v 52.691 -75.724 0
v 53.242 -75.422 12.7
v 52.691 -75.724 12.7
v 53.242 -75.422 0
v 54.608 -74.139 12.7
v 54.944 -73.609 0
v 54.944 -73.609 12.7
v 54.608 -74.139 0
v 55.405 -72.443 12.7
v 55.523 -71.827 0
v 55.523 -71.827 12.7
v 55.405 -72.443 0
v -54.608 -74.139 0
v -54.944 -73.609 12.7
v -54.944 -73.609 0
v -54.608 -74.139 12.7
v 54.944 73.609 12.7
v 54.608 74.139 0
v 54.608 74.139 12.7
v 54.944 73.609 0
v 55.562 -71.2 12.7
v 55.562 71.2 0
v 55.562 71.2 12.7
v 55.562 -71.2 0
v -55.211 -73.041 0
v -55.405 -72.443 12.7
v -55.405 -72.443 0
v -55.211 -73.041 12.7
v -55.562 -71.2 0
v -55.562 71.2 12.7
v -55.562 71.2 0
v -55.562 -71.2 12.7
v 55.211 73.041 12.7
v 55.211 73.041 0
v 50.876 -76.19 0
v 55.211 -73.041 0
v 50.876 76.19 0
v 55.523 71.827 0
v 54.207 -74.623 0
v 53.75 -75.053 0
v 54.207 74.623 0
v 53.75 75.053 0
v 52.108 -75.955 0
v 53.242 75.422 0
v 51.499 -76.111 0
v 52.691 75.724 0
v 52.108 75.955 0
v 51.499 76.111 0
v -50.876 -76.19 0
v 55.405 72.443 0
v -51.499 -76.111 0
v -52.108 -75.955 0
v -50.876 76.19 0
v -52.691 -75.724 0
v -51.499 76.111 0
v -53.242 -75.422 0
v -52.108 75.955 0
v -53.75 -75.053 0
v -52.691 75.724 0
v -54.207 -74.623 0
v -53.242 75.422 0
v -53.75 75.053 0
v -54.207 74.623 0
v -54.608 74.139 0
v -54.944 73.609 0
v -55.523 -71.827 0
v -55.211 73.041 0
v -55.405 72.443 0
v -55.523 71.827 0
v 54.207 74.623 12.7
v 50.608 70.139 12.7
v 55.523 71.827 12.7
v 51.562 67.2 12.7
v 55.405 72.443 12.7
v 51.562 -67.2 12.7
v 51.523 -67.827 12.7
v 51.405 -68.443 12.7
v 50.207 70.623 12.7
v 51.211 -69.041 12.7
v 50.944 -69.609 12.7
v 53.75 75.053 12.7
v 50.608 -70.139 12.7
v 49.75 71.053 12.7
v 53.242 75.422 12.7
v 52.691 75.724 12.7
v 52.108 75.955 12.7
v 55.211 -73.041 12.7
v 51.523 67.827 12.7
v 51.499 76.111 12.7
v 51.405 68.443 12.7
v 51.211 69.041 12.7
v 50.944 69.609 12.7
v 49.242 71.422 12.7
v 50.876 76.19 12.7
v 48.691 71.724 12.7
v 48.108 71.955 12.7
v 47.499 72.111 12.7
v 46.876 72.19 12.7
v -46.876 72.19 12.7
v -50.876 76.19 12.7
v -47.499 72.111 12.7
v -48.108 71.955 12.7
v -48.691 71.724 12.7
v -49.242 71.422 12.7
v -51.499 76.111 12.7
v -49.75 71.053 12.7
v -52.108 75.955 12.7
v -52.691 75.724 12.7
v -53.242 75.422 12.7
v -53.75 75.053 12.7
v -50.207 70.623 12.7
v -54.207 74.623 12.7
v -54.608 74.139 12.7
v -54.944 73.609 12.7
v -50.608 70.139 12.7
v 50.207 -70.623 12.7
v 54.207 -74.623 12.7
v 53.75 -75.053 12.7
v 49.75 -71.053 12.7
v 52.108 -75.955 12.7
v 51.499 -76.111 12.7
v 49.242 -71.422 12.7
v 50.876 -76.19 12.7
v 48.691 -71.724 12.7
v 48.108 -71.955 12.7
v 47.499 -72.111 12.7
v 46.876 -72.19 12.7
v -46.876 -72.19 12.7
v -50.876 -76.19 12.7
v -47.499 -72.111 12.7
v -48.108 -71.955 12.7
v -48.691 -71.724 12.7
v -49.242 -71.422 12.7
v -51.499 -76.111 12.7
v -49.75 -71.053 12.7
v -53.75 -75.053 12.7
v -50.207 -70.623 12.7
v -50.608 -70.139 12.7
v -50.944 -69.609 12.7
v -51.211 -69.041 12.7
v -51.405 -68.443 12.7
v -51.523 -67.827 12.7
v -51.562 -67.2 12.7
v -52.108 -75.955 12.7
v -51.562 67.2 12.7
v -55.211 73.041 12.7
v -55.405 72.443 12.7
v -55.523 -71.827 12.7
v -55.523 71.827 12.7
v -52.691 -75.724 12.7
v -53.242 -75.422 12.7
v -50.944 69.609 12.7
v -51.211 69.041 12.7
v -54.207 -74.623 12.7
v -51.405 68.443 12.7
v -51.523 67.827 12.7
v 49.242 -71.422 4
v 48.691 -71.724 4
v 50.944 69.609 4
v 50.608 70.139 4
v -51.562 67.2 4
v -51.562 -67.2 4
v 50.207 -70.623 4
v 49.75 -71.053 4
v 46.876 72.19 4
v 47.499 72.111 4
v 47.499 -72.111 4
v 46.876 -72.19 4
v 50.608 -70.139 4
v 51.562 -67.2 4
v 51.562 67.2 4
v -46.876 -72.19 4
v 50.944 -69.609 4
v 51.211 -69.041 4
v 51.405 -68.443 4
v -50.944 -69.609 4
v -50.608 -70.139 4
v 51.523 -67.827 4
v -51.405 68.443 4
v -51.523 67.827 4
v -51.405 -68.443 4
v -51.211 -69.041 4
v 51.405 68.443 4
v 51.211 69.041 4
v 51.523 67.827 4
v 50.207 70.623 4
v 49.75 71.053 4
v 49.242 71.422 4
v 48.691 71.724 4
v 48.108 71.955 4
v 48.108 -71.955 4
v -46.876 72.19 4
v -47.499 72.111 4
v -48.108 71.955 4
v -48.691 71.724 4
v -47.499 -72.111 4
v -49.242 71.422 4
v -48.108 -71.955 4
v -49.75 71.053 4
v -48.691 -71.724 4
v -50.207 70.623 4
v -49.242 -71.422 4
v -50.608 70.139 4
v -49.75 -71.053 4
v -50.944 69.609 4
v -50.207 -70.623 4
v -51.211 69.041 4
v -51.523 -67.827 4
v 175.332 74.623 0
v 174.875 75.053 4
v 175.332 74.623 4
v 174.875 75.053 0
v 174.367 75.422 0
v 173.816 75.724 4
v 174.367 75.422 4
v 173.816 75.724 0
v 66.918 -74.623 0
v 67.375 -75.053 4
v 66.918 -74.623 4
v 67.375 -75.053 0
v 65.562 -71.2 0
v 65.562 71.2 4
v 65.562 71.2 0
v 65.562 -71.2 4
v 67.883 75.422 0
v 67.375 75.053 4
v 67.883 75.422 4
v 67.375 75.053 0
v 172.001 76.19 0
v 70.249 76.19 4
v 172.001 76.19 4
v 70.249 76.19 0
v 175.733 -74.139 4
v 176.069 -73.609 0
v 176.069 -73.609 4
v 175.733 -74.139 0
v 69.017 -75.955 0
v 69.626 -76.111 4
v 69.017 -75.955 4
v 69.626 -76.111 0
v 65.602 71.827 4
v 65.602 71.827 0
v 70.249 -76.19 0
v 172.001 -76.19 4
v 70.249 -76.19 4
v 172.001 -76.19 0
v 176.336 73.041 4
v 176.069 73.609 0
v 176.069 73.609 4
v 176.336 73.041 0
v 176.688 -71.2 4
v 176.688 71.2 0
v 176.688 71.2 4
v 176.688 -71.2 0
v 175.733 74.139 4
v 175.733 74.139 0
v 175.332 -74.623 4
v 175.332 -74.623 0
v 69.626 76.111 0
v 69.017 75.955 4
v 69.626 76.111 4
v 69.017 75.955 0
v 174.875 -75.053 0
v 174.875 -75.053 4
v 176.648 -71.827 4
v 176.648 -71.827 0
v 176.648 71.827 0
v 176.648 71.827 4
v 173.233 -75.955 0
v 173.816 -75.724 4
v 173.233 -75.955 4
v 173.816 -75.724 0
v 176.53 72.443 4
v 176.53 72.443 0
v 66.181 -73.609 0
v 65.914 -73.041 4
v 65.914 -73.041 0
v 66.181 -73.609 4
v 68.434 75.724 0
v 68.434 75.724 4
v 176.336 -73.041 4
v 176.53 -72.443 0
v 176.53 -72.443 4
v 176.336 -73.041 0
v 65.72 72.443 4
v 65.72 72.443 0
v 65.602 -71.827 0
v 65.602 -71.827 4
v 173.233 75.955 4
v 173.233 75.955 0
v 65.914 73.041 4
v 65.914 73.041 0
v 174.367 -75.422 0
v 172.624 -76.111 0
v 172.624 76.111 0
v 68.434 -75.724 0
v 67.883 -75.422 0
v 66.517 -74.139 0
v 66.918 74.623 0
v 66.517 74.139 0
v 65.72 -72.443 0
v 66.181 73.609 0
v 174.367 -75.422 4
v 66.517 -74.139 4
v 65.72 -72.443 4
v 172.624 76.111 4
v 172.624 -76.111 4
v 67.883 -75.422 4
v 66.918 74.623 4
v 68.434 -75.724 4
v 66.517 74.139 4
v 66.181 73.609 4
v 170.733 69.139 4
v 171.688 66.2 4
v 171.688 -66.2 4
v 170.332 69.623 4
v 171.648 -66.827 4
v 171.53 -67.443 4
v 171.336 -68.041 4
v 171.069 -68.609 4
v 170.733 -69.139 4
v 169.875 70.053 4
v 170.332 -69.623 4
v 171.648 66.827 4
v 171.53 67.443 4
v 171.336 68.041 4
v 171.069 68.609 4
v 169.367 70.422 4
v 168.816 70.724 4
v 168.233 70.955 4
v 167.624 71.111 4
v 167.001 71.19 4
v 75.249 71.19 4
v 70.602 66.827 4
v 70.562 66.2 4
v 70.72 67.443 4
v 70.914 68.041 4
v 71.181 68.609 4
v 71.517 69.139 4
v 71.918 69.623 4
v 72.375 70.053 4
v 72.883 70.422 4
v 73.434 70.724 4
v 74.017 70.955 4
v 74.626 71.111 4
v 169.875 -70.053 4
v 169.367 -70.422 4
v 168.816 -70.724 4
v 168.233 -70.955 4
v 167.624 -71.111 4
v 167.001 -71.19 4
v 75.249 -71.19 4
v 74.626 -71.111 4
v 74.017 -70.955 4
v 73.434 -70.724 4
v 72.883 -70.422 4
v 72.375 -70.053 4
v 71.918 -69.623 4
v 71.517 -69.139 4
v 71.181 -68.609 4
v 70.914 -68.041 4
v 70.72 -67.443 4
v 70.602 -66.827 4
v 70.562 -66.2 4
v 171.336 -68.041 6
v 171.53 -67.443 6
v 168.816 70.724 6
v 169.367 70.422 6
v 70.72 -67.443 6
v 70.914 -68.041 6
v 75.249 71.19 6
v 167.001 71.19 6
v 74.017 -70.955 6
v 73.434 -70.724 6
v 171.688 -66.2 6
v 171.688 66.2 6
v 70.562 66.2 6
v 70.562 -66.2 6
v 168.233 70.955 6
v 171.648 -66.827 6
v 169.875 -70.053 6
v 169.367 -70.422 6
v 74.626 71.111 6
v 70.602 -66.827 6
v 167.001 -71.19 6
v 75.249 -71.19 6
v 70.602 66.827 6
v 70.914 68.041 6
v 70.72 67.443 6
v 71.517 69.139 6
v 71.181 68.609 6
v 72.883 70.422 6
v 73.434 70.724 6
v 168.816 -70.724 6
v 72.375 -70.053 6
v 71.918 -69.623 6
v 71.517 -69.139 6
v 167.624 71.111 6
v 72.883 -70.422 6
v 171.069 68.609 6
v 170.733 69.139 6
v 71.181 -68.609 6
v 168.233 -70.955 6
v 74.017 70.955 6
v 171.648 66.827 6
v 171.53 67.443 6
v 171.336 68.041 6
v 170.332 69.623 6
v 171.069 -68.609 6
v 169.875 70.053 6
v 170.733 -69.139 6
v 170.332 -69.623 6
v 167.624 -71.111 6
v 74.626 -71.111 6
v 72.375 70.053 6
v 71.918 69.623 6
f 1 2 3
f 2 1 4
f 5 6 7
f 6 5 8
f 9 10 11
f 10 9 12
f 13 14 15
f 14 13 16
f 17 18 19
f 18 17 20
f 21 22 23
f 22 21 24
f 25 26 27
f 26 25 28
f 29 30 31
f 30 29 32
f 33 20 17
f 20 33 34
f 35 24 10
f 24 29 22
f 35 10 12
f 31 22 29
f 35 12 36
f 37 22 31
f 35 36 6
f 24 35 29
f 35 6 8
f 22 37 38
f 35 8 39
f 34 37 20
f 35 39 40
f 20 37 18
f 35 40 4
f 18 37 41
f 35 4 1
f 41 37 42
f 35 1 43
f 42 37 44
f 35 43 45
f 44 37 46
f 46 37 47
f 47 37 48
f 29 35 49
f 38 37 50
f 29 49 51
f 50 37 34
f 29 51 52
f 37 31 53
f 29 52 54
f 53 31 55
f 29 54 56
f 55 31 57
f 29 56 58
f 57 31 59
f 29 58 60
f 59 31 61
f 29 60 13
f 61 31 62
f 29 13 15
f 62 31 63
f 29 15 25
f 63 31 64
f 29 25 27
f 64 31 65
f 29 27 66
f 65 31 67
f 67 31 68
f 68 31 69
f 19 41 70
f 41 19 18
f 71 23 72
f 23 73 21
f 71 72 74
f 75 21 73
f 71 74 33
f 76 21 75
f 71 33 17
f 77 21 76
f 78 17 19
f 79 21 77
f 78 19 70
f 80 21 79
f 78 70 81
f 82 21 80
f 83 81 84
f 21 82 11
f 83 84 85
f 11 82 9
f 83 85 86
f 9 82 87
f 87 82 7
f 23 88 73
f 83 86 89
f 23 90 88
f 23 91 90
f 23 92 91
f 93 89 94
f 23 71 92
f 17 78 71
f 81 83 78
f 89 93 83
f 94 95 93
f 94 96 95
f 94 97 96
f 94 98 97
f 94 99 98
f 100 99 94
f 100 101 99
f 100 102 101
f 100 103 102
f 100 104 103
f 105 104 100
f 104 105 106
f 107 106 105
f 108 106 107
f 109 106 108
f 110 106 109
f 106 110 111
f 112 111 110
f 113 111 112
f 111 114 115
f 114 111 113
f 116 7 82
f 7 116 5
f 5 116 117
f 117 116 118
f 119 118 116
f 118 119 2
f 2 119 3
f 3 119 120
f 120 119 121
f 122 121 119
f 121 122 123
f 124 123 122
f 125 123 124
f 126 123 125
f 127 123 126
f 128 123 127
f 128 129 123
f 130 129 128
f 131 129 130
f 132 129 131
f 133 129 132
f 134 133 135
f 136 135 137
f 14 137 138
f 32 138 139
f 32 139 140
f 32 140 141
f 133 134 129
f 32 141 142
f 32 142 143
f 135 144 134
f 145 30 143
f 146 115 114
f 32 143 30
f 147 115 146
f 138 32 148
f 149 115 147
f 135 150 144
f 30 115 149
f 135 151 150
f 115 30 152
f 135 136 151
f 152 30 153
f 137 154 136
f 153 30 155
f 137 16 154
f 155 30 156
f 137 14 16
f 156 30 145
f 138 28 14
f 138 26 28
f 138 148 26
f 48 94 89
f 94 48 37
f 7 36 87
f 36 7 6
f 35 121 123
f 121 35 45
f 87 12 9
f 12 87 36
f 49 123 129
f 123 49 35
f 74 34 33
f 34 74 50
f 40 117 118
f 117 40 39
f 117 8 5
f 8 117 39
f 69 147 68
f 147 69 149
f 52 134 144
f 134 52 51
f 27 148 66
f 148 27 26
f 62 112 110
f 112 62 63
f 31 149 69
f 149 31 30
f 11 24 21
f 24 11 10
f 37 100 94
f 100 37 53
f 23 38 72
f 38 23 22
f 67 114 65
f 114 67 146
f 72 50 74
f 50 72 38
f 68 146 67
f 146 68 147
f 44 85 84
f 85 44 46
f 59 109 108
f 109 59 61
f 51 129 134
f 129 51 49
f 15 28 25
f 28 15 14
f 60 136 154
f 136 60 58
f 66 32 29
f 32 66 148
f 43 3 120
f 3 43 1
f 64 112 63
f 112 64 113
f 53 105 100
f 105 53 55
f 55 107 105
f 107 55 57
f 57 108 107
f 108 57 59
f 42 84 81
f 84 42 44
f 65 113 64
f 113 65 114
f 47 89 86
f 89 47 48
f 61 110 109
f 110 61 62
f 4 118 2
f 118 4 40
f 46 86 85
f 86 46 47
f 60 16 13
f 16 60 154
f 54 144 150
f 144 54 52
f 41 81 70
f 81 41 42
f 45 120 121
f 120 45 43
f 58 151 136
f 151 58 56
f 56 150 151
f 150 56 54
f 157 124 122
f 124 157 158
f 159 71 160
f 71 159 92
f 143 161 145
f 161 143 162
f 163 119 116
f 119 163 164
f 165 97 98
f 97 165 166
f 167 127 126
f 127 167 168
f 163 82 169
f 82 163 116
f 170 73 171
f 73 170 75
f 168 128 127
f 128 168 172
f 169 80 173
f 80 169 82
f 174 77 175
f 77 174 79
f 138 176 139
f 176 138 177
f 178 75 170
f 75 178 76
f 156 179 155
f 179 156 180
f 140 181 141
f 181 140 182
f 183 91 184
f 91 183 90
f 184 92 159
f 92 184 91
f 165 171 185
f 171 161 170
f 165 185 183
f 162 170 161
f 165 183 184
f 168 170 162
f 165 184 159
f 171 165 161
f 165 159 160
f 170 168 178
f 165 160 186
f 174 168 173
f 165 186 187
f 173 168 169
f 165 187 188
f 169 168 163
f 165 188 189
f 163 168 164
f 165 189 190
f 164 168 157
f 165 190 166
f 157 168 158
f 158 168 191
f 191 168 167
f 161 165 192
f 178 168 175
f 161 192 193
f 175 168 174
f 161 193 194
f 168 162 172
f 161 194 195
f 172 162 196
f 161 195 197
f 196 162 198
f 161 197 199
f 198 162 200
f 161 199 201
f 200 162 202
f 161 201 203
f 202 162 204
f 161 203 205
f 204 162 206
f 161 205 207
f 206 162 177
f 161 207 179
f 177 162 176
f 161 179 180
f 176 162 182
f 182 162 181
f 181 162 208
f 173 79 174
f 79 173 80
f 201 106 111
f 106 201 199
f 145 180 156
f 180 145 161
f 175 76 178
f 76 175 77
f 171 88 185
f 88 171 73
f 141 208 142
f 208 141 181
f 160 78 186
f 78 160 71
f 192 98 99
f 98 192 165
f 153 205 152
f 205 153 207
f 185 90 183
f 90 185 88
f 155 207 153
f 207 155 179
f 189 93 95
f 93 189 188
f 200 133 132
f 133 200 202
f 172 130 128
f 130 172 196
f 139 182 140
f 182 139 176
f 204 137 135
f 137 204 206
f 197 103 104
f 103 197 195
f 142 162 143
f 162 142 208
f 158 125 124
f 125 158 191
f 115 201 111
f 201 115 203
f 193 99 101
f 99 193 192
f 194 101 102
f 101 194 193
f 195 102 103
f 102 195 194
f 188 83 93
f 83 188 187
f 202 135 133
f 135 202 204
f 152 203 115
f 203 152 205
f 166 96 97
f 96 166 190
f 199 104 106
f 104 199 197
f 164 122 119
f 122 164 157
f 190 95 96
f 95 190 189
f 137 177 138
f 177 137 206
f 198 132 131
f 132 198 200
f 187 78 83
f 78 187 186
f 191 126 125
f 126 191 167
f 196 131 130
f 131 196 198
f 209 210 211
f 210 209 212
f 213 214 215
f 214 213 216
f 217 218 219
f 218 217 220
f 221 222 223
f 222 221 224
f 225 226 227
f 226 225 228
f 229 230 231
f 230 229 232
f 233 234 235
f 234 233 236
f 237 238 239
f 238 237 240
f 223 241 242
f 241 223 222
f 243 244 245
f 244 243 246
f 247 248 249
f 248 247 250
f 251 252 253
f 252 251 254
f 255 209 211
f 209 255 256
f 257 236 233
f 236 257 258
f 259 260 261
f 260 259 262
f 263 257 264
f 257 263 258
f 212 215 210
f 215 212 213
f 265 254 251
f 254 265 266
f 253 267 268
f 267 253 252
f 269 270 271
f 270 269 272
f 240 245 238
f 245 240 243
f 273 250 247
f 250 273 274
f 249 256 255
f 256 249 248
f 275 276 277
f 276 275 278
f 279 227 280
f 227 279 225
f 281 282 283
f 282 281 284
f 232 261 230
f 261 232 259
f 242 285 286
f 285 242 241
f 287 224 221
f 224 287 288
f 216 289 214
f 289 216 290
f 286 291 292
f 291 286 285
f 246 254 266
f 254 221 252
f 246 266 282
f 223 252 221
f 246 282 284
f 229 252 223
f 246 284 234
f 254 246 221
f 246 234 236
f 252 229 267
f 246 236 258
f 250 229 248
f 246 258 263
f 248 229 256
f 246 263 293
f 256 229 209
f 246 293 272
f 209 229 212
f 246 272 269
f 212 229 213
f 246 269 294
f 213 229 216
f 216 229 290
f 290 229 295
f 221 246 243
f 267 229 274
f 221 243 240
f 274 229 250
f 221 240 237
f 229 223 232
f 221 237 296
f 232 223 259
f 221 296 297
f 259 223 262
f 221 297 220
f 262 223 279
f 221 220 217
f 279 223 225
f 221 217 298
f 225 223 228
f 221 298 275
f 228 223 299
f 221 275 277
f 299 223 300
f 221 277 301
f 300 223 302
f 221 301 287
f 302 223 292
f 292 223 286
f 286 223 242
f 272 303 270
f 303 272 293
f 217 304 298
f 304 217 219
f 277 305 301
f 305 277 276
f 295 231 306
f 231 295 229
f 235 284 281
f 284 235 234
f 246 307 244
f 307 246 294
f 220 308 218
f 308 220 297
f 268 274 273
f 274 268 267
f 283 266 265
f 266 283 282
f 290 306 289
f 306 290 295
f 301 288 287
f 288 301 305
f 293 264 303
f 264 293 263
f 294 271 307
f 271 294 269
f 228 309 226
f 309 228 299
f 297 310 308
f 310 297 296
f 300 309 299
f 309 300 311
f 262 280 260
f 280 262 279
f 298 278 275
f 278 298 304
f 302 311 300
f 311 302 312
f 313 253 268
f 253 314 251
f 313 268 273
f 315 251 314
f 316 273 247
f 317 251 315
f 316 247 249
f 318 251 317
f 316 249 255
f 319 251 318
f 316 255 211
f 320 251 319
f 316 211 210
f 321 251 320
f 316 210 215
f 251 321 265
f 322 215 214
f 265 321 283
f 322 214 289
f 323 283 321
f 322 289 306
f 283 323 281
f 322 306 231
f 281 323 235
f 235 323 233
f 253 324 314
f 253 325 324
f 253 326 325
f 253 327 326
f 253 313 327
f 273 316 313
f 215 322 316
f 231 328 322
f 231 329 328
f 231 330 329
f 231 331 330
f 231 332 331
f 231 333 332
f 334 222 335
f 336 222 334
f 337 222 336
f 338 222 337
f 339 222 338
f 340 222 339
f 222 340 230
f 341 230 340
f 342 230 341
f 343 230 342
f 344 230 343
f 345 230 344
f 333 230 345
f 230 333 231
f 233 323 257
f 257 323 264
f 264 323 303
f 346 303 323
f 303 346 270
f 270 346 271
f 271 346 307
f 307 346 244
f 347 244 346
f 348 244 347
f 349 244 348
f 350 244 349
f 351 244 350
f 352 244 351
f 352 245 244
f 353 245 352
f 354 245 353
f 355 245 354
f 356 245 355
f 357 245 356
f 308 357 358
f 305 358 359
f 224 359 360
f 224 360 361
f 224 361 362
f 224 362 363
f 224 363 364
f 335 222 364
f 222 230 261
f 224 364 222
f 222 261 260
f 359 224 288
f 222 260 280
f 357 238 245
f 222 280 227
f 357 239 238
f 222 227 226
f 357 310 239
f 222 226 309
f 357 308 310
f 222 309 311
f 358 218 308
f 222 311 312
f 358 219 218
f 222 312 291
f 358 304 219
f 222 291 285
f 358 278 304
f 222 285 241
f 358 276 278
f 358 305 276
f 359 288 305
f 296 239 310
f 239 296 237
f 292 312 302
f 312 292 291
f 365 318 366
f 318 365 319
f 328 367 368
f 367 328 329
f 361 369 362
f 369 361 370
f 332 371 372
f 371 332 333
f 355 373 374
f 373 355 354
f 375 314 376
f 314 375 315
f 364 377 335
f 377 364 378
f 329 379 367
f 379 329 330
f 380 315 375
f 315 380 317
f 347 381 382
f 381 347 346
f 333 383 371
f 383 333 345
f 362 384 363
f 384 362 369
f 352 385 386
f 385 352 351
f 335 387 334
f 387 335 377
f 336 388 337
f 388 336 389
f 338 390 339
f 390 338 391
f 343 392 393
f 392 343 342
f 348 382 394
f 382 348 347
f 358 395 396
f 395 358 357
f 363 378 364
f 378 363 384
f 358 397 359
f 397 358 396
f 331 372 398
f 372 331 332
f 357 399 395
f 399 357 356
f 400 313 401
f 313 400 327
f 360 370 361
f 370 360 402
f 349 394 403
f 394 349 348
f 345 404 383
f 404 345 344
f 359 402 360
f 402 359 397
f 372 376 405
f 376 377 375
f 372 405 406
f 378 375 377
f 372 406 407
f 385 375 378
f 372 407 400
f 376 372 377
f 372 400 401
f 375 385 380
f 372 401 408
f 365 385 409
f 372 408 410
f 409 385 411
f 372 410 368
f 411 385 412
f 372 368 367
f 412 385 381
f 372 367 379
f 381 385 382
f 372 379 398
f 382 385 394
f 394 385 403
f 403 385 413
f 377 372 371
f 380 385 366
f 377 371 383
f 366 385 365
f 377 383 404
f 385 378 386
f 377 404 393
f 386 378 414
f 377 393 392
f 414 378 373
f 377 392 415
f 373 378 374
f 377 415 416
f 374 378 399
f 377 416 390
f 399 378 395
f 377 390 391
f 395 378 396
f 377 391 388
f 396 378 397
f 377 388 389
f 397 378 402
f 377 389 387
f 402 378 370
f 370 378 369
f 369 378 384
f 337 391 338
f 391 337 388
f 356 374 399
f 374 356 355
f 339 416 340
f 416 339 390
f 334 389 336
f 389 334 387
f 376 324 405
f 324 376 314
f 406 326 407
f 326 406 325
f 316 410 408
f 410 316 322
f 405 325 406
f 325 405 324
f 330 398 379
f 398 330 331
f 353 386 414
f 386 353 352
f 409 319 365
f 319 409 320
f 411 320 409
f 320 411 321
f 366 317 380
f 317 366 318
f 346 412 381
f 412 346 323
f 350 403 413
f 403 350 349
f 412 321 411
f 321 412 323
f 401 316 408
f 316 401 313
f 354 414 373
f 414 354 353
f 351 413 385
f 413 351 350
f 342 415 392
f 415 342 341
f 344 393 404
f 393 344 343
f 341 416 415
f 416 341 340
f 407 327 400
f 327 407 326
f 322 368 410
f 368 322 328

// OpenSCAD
//outside dimensions of the box
CM=25.4;

width  = (4 + 3/8) * CM;    //x dimension
length = 6 * CM;    //y dimension
height = .5 * CM;    //z dimension
$fn=50;

//additional parameters
corner_radius = 5;      // radius of box corners
wall_thickness = 4;     // total thickness of any wall
post_diameter = 10;     // internal post for screws
hole_diameter = 3;      // size of screws for lid (0=no screws)
lid_thickness= 2;       // comment out if no lid required
lid_lip = 5;            // 0 makes lid flush to top
lid_tolerance = .5;     // shrink lid so not squeaky fit

fn=50;

// make 4 "posts" about 0,0,0 offset by +/-x +/-y 
module posts(x,y,z,h,r)
{
    translate([x,y,z]){         // move post to this location
        cylinder(r = r, h = h); // make one post
    }
    translate([-x,y,z]){        // move post to this location
        cylinder(r = r, h = h); // make one post
    }   
    translate([-x,-y,z]){       // move post to this location
        cylinder(r = r, h = h); // make one post
    }
    translate([x,-y,z]){        // move post to this location
        cylinder(r = r, h = h); // make one post
    }    
}


difference() { // make 2 boxes one inside the other and remove "inside box" from "outside box"
    // use posts to define OUTSIDE of a solid box centered on 0,0
    hull(){
        posts(  
            x=(width/2  - corner_radius),
            y=(length/2 - corner_radius),
            z= 0,
            h= height,
            r = corner_radius);
    }
        
    // use posts to define INSIDE of a solid box centered on 0,0
    hull(){
        posts(
            x=(width/2  - corner_radius - wall_thickness),
            y=(length/2 - corner_radius - wall_thickness),
            z= wall_thickness, // move up to create bottom
            h= height,
            r = corner_radius);
    }

    // now we have a simple hollow box.
    // use posts to define a LIP inside the wall 
    hull(){
        posts(
            x=(width/2  - corner_radius - lid_lip),
            y=(length/2 - corner_radius - lid_lip),
            z= height - lid_thickness,
            h= lid_thickness + 1,
            r = corner_radius);
    }
}



// create a lid
translate([10 + width, 0, 0]) 
union() { 

    // make 2 boxes one inside the other and remove "inside box" from "outside box"
    // use posts to define OUTSIDE of a solid box centered on 0,0
    hull(){
        posts(  
            x=(width/2  - corner_radius),
            y=(length/2 - corner_radius),
            z= 0,
            h= lid_thickness *2,
            r = corner_radius);
    }

    // now we have a simple hollow box.
    // use posts to define a LIP inside the wall
    color("RED", 1)
    translate( [ 0, 0, -lid_thickness  ]) 
    hull(){
        posts(
            x=(width/2  - corner_radius - lid_lip),
            y=(length/2 - corner_radius - lid_lip),
            z= lid_thickness + 3,
            h= lid_thickness + 1,
            r = corner_radius);
    }

}



/*
difference()
{
    hull()
    {
            // make undrilled lid
            posts(
                x=(width/2  - corner_radius - wall_thickness/2 - lid_tolerance),
                y=(length/2 - corner_radius - wall_thickness/2 - lid_tolerance),
                z= 0, // move up to create bottom
                h= lid_thickness,
                r = corner_radius);
            
            // drill outholes for the screws via difference
            // ADD the holes for the screws.
    }

}
*/
